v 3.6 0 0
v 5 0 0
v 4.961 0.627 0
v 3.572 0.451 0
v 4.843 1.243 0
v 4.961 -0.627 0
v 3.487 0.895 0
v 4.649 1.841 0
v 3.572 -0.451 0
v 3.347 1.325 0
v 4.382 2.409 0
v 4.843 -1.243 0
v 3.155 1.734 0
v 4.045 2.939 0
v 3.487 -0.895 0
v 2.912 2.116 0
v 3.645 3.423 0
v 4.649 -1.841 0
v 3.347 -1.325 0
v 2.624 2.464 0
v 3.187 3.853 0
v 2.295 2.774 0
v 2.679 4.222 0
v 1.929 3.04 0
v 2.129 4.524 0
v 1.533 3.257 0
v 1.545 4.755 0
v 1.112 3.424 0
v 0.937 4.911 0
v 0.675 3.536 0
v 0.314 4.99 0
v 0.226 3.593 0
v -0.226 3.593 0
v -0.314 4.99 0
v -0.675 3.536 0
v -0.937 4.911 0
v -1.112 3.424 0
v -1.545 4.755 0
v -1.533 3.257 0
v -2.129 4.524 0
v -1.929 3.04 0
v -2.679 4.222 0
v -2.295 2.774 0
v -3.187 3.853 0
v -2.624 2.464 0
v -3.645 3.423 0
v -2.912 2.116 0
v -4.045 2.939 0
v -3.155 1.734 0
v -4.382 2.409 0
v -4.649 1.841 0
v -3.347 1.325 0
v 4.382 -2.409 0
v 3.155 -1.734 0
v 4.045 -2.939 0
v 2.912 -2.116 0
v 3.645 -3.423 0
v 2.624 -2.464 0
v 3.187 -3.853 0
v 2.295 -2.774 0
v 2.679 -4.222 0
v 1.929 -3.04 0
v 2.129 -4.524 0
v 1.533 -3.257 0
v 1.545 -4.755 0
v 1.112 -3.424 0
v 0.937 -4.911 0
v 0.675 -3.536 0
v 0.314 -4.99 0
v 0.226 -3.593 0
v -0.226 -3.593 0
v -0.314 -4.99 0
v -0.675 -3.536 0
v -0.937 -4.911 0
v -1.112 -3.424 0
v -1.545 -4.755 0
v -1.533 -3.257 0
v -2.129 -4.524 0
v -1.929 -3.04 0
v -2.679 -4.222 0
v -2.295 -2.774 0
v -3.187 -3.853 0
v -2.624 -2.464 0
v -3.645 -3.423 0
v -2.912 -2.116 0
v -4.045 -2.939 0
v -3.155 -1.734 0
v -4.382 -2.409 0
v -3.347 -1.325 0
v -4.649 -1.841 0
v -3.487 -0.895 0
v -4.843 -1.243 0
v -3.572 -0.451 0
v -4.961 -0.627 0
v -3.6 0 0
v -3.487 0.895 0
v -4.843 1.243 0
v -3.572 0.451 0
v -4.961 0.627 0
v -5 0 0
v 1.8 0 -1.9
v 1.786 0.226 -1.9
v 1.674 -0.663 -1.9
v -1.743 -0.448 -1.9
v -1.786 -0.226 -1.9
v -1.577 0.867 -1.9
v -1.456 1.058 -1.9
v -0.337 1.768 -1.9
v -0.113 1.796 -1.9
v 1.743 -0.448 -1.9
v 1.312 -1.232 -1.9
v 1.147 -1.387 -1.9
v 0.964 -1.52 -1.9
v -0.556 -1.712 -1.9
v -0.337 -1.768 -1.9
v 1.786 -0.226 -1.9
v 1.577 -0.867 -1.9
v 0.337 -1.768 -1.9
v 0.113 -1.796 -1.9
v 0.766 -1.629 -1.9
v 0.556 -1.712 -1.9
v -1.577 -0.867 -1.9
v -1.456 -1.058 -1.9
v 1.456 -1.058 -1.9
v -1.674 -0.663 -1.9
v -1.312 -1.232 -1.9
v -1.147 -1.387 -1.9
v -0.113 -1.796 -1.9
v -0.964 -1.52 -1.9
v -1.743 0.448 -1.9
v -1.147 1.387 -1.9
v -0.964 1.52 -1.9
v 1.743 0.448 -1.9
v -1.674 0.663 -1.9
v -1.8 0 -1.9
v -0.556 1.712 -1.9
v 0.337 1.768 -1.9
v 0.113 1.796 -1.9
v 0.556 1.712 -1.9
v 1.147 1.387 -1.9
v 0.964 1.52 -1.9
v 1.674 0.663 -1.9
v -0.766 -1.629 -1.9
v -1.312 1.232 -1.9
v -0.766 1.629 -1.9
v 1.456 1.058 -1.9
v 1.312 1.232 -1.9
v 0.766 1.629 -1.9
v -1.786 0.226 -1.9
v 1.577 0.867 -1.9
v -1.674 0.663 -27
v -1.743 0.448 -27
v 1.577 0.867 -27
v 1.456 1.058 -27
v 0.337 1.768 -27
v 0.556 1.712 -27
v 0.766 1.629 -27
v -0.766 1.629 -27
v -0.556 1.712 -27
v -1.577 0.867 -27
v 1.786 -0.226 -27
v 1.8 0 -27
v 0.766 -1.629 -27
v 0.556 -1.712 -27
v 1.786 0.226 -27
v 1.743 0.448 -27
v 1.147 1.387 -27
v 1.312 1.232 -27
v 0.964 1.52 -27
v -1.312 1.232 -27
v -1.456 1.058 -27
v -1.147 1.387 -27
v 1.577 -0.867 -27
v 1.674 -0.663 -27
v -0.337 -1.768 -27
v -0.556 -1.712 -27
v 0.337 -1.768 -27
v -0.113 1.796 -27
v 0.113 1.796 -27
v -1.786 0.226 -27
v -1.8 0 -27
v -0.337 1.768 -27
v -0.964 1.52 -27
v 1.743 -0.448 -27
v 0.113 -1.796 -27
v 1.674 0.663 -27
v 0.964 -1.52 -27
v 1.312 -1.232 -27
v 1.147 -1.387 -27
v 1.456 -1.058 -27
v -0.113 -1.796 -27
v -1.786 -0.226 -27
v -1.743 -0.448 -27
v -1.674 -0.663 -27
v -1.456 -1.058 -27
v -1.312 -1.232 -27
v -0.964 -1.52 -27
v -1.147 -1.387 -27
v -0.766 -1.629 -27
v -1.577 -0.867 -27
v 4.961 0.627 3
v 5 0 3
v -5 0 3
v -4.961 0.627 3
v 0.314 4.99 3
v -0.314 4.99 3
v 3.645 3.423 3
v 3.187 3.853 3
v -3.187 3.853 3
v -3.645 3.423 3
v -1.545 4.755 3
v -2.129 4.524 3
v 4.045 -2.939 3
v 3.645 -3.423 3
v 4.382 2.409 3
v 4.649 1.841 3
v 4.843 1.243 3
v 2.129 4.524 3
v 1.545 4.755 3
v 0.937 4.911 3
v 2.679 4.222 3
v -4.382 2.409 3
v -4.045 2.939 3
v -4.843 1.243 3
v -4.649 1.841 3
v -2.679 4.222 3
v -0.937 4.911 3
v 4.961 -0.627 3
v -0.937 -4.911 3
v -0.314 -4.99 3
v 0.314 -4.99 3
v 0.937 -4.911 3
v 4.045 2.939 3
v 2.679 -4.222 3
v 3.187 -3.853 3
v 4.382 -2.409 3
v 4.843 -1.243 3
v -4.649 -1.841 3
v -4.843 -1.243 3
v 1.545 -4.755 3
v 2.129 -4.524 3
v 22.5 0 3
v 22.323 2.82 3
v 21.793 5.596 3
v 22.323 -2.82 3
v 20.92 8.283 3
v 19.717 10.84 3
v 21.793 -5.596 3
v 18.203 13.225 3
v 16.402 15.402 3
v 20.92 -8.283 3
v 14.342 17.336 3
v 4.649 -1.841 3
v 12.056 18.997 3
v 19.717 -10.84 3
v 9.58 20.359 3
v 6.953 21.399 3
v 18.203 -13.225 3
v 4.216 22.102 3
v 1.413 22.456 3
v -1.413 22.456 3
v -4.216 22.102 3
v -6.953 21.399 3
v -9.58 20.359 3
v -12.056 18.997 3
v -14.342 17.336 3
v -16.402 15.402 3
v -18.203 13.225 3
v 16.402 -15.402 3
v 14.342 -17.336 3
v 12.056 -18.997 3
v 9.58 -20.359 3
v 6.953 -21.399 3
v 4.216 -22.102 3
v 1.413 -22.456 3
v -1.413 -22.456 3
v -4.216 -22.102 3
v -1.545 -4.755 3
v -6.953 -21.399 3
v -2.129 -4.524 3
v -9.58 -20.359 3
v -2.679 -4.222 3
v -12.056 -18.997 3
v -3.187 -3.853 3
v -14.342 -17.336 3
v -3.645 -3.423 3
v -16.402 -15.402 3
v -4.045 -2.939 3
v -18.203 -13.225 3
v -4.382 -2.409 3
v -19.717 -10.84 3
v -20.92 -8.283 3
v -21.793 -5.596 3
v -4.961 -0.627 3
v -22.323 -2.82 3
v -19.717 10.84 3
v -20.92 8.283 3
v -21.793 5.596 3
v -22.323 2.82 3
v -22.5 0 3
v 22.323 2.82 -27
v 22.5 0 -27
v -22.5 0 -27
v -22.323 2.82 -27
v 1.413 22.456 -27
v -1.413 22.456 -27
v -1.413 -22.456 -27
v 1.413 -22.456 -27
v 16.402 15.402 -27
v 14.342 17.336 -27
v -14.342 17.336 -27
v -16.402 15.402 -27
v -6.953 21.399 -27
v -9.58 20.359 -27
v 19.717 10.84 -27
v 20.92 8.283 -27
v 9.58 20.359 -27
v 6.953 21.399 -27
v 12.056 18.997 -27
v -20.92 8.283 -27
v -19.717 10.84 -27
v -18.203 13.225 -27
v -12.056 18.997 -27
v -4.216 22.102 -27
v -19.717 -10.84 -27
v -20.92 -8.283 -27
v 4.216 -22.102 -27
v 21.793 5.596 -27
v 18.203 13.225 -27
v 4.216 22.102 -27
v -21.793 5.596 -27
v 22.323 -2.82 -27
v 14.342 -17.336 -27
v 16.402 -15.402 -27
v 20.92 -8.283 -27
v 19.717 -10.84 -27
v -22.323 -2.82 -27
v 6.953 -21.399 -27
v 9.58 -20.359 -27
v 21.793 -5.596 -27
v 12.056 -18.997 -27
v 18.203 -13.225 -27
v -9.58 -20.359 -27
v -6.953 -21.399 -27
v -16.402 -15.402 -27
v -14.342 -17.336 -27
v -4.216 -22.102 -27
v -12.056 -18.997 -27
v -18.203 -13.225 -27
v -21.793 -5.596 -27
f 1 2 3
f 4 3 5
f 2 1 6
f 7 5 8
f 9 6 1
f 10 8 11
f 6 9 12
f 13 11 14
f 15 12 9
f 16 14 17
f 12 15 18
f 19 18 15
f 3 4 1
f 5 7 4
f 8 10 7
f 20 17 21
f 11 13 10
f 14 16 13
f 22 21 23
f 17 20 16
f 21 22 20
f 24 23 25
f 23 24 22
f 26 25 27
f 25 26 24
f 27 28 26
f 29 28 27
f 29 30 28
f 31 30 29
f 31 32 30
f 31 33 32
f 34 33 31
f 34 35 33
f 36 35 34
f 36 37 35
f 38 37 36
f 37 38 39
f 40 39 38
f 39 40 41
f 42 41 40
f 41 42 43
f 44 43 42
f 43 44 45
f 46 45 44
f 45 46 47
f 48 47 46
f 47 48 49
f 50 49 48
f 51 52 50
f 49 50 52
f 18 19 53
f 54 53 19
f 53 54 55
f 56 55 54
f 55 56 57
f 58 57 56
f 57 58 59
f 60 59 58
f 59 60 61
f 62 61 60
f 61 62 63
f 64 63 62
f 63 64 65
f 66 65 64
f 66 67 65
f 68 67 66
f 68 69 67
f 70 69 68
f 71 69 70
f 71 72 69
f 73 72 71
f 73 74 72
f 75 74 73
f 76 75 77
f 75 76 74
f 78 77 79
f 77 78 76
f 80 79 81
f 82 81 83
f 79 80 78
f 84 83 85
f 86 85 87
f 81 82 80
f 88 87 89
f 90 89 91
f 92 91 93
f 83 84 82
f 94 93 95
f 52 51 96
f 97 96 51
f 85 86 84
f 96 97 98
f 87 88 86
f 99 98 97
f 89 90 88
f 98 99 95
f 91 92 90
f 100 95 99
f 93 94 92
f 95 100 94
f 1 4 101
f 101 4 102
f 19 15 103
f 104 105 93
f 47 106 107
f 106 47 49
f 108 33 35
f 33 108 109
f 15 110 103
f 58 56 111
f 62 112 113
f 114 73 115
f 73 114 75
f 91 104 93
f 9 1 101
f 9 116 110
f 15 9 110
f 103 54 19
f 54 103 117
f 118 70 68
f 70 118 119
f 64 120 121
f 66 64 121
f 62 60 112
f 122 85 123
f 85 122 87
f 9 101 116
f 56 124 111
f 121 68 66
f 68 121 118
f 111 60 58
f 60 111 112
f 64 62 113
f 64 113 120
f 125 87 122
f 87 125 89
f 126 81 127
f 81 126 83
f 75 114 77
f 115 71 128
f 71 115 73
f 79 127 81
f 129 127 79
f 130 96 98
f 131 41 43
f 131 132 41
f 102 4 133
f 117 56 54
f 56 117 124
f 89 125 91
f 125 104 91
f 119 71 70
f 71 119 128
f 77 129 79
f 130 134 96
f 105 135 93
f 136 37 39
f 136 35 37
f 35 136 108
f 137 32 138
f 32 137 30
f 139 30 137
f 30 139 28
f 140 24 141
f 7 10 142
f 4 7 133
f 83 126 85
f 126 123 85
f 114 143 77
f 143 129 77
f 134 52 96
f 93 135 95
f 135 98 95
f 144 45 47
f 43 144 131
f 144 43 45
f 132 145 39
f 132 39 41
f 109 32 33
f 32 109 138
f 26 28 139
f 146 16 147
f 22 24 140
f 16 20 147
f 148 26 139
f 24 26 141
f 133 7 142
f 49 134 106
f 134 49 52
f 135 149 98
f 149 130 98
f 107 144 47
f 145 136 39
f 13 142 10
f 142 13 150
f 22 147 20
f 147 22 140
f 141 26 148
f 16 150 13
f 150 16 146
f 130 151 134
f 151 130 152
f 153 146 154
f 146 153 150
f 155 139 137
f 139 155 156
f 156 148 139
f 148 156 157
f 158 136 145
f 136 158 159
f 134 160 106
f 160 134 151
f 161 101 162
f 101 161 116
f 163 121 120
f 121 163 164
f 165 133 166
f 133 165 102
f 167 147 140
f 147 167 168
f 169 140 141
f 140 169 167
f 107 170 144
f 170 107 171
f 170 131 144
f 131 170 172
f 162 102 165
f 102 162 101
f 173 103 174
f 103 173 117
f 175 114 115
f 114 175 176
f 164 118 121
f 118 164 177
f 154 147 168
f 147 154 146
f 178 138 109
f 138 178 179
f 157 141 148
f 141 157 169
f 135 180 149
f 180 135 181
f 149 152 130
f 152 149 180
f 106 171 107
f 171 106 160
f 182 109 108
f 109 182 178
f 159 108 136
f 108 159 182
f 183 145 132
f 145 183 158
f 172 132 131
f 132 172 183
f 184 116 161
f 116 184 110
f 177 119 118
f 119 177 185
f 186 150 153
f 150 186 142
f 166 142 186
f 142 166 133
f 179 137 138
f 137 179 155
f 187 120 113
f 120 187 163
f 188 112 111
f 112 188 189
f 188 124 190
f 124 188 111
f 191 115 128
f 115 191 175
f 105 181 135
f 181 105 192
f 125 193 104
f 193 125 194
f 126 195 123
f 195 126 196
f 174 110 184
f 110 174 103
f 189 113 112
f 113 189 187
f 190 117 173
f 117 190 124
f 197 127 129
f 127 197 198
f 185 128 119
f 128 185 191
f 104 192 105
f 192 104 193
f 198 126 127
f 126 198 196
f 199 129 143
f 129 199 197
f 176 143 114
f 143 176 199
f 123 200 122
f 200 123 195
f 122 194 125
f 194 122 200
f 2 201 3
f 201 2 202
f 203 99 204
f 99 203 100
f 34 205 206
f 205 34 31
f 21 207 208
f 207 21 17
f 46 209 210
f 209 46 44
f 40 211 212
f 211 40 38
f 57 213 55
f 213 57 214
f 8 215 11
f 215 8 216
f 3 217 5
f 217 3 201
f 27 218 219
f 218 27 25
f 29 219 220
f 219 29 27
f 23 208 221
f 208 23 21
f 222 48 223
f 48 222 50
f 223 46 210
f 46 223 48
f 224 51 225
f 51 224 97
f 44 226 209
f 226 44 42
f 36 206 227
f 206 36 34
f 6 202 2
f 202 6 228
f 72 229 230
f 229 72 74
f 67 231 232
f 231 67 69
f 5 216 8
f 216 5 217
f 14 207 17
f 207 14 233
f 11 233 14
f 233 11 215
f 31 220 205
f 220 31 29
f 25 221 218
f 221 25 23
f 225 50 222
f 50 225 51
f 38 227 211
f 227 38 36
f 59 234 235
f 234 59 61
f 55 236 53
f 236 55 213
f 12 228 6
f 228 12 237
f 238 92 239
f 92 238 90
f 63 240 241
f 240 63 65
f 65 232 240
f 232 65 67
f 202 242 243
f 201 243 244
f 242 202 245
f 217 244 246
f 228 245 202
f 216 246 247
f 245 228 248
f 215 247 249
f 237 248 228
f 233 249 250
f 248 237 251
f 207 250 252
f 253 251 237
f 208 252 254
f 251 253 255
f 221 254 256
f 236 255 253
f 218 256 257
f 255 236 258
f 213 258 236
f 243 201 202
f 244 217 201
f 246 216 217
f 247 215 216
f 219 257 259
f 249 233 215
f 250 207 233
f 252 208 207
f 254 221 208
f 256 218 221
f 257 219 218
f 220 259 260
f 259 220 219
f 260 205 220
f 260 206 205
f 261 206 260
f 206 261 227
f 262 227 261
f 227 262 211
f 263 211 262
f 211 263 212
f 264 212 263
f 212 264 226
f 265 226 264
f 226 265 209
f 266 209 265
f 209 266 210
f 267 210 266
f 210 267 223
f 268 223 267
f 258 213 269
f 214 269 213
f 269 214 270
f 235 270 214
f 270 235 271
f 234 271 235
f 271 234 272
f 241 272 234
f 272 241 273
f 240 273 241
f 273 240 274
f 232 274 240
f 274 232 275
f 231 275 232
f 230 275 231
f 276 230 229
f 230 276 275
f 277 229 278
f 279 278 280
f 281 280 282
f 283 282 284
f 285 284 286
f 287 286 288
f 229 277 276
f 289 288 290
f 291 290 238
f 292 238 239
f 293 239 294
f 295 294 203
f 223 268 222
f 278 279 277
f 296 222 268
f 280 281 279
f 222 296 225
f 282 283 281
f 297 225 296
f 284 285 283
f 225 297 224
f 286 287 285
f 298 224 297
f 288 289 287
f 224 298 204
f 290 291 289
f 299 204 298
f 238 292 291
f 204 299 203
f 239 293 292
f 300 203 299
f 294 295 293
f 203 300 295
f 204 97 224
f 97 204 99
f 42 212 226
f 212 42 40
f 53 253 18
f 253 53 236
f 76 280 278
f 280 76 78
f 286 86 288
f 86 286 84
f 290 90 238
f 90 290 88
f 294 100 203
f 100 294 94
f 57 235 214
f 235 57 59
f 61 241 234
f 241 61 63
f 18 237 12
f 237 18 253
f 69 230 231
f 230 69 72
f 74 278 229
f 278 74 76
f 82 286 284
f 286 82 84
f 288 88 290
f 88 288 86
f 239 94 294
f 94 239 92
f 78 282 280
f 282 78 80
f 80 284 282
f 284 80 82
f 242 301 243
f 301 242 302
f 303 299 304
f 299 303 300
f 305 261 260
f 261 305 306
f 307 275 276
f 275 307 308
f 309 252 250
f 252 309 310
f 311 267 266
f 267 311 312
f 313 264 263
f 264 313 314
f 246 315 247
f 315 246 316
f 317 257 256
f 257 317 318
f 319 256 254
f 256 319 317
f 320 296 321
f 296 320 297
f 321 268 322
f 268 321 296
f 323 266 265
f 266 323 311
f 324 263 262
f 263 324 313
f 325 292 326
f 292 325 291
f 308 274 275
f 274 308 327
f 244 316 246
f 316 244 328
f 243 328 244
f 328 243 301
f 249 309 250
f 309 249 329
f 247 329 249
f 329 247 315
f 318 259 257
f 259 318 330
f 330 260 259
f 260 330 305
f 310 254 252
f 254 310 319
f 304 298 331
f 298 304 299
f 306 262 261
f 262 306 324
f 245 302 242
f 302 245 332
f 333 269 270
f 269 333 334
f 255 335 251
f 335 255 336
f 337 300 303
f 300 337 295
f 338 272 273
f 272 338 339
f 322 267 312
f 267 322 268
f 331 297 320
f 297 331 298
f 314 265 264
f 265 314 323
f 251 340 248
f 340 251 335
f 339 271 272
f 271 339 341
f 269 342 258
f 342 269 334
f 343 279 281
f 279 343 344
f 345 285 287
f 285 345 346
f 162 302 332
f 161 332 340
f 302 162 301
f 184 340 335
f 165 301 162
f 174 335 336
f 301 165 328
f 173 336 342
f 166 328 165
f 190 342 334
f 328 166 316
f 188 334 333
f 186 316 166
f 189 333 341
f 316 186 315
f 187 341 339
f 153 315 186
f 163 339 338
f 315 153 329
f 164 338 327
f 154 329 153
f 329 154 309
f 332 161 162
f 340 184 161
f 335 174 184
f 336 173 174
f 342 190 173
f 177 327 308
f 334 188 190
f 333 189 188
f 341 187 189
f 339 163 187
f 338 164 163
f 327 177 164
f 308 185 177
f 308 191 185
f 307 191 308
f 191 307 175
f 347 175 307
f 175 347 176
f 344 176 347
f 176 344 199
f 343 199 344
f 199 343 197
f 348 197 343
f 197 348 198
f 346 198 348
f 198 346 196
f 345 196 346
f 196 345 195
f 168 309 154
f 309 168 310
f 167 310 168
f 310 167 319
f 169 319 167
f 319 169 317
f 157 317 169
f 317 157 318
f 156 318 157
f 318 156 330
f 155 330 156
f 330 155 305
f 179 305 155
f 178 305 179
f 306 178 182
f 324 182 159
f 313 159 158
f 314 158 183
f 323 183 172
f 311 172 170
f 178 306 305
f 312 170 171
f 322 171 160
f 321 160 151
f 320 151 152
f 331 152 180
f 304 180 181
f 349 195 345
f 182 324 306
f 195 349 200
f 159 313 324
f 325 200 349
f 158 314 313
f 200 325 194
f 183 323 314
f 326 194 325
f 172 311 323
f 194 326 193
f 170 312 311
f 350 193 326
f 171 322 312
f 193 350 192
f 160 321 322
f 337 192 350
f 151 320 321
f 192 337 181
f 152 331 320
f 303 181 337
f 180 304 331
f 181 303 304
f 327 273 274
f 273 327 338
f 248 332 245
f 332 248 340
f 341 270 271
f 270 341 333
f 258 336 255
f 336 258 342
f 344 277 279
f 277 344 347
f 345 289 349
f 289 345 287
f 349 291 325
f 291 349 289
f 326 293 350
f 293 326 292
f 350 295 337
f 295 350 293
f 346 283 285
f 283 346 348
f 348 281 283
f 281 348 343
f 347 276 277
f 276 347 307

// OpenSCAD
$fn = 50;

difference() {
	union() {
		translate(v = [0, 0, -27.0]) {
			cylinder(h = 30, r = 22.5);
		}
	}
	union() {
		translate(v = [0, 0, 0]) {
			rotate(a = [0, 0, 0]) {
				difference() {
					union() {
						translate(v = [0, 0, -30.0]) {
							cylinder(h = 30, r = 1.5);
						}
						translate(v = [0, 0, -1.9]) {
							cylinder(h = 1.9, r1 = 1.8, r2 = 3.6);
						}
						translate(v = [0, 0, -30.0]) {
							cylinder(h = 30, r = 1.8);
						}
						translate(v = [0, 0, -30.0]) {
							cylinder(h = 30, r = 1.5);
						}
					}
					union();
				}
			}
		}
		#cylinder(h = 3, r = 5.0);
	}
}
